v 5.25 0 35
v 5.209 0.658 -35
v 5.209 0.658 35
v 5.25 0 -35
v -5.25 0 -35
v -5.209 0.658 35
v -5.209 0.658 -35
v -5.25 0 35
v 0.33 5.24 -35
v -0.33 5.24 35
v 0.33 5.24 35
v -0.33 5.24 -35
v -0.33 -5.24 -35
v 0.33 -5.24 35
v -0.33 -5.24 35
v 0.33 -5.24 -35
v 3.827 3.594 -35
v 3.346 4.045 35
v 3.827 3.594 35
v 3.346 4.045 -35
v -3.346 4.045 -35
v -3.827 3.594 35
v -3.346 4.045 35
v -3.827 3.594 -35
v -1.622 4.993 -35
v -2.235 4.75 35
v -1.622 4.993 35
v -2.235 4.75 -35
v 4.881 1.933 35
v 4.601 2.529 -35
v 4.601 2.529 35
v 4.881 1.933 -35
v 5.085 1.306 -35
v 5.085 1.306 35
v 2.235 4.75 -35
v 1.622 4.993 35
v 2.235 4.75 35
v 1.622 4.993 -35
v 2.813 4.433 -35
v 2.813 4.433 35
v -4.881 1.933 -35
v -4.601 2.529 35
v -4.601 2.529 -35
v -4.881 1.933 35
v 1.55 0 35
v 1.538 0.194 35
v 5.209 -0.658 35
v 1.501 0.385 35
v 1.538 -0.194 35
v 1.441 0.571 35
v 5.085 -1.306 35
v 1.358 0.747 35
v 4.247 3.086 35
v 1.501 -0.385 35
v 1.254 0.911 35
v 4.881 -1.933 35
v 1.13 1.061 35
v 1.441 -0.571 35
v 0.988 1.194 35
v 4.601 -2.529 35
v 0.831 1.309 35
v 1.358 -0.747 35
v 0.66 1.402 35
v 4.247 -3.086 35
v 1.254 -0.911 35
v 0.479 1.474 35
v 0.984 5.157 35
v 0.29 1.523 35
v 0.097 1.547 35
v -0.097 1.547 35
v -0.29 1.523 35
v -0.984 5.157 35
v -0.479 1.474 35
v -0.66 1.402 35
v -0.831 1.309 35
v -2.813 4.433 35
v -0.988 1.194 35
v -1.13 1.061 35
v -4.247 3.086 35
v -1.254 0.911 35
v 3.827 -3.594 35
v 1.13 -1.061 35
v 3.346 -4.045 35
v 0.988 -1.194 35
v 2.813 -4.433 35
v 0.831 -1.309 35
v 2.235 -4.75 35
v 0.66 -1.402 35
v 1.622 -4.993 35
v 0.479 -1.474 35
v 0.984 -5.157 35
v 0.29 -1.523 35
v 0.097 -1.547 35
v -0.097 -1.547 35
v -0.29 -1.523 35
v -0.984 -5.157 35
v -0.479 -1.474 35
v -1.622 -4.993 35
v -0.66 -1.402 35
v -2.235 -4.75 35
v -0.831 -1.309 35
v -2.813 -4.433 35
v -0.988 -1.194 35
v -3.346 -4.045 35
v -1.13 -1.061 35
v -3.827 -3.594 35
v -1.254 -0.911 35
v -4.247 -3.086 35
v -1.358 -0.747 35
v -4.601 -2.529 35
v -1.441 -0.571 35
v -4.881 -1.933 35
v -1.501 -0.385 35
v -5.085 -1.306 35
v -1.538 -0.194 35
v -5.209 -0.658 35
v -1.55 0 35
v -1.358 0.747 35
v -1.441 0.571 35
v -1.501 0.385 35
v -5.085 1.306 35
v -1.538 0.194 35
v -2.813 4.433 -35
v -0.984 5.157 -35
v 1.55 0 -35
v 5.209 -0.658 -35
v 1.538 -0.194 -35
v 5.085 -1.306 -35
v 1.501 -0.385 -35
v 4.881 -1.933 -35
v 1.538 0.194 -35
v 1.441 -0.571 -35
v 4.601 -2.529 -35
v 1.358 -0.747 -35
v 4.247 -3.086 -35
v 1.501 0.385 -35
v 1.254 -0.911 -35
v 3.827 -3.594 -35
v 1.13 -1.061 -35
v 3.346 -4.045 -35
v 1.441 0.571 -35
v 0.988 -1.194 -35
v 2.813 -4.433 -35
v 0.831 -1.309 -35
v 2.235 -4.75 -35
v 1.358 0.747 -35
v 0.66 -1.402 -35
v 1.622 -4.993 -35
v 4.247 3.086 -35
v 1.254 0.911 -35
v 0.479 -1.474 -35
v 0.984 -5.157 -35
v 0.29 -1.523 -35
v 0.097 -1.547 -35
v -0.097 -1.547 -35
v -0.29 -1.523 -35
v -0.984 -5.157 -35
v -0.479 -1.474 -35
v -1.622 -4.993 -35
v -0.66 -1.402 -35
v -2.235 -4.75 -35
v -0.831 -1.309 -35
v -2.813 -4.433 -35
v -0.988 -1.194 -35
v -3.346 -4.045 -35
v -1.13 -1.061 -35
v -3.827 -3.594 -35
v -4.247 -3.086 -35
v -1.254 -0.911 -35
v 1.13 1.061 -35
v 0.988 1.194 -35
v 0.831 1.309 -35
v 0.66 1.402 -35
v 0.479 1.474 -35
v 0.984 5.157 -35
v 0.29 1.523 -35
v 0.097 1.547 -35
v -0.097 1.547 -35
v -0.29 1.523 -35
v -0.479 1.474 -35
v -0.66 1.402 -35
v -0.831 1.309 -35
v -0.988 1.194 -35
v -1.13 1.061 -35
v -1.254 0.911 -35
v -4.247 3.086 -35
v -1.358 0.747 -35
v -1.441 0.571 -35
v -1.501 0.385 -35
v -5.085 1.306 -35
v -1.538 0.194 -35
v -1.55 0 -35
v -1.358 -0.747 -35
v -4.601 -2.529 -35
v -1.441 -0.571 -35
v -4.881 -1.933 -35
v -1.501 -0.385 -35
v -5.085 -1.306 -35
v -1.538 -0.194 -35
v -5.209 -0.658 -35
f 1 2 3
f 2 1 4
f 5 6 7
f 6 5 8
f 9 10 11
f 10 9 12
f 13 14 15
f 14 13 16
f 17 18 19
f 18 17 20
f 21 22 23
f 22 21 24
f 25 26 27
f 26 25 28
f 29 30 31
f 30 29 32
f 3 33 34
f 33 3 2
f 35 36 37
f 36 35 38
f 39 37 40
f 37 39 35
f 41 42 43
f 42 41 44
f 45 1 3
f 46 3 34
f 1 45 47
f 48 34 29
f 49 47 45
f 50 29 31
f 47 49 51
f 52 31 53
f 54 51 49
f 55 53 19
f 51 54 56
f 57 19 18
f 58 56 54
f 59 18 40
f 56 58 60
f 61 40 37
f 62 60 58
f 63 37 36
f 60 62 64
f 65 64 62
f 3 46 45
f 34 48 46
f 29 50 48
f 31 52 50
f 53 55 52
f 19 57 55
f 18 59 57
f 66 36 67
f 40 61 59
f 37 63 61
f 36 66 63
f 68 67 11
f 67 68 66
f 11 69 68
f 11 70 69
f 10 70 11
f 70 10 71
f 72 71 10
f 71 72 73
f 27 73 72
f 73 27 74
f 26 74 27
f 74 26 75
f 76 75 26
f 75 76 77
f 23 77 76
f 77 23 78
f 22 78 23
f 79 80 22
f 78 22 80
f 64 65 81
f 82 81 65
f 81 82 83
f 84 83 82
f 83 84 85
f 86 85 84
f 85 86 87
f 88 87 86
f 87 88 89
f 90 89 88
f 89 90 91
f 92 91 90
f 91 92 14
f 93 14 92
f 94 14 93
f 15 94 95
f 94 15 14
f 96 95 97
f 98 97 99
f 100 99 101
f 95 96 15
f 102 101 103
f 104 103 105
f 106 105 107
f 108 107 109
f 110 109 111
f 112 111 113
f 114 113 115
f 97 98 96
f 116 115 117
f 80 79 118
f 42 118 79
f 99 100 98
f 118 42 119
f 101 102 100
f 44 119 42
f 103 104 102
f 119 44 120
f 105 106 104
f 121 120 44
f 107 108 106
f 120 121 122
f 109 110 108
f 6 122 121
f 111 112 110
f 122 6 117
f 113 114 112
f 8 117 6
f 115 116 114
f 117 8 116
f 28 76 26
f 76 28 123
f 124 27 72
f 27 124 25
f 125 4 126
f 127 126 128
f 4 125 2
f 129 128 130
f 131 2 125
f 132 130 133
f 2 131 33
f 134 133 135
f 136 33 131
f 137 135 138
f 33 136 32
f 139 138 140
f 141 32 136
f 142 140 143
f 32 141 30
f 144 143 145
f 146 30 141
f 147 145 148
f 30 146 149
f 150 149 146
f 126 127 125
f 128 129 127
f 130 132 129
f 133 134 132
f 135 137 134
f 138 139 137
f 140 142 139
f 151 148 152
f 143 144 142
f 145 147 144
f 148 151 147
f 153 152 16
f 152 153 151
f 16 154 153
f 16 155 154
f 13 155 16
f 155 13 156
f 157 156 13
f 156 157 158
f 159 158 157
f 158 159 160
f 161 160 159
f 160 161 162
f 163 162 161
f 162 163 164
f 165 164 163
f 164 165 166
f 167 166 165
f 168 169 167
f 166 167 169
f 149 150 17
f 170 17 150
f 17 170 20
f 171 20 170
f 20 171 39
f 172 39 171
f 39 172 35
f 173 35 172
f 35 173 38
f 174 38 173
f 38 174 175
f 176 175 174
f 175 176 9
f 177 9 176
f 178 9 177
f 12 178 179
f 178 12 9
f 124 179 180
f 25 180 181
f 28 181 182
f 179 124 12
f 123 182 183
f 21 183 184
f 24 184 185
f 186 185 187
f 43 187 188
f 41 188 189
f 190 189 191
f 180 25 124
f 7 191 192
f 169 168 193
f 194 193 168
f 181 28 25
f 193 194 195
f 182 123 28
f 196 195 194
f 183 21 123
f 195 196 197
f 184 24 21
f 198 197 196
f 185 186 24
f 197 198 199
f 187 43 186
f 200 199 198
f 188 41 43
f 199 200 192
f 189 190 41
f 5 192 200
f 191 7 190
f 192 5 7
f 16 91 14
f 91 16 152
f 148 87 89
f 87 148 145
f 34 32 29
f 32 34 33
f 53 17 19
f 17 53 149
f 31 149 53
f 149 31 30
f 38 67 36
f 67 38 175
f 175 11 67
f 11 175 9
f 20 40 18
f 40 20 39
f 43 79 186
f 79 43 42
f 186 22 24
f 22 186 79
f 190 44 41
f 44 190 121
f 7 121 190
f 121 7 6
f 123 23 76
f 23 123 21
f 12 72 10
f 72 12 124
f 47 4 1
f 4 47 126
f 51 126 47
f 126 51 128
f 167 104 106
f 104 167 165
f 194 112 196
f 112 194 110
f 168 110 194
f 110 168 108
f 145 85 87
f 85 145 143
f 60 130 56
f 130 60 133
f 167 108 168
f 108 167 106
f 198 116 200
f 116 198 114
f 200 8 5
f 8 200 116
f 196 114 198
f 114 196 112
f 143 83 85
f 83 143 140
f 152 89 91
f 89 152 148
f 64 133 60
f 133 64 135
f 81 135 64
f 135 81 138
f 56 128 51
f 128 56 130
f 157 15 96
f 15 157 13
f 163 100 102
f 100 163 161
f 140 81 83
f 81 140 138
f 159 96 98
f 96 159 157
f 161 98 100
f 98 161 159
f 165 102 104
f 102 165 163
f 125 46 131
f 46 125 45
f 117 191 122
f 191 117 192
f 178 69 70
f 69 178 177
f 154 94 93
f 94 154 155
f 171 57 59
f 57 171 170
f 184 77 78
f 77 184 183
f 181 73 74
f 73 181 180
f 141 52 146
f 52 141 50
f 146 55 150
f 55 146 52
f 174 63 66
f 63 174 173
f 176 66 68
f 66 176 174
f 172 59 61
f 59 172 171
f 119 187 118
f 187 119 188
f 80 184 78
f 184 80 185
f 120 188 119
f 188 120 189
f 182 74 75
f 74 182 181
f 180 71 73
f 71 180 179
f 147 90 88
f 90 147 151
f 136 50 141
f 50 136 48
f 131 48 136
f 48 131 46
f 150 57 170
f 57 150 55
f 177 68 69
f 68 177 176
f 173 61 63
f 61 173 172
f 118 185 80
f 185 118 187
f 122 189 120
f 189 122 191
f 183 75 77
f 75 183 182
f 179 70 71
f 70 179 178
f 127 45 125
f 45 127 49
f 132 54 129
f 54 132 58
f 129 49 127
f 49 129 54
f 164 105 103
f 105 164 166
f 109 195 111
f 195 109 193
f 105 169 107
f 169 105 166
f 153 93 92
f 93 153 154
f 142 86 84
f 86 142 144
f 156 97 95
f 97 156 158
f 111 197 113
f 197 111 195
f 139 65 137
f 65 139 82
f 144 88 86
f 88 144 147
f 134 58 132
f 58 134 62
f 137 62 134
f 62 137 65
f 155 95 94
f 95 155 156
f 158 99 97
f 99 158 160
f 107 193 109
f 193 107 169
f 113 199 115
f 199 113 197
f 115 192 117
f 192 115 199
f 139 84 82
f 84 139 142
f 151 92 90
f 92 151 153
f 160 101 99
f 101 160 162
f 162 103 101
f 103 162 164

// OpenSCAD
$fn = 50;


difference() {
	union() {
		translate(v = [0, 0, -35.0000000000]) {
			cylinder(h = 70, r = 5.2500000000);
		}
	}
	union() {
		translate(v = [0, 0, -100.0000000000]) {
			cylinder(h = 200, r = 1.5500000000);
		}
	}
}
